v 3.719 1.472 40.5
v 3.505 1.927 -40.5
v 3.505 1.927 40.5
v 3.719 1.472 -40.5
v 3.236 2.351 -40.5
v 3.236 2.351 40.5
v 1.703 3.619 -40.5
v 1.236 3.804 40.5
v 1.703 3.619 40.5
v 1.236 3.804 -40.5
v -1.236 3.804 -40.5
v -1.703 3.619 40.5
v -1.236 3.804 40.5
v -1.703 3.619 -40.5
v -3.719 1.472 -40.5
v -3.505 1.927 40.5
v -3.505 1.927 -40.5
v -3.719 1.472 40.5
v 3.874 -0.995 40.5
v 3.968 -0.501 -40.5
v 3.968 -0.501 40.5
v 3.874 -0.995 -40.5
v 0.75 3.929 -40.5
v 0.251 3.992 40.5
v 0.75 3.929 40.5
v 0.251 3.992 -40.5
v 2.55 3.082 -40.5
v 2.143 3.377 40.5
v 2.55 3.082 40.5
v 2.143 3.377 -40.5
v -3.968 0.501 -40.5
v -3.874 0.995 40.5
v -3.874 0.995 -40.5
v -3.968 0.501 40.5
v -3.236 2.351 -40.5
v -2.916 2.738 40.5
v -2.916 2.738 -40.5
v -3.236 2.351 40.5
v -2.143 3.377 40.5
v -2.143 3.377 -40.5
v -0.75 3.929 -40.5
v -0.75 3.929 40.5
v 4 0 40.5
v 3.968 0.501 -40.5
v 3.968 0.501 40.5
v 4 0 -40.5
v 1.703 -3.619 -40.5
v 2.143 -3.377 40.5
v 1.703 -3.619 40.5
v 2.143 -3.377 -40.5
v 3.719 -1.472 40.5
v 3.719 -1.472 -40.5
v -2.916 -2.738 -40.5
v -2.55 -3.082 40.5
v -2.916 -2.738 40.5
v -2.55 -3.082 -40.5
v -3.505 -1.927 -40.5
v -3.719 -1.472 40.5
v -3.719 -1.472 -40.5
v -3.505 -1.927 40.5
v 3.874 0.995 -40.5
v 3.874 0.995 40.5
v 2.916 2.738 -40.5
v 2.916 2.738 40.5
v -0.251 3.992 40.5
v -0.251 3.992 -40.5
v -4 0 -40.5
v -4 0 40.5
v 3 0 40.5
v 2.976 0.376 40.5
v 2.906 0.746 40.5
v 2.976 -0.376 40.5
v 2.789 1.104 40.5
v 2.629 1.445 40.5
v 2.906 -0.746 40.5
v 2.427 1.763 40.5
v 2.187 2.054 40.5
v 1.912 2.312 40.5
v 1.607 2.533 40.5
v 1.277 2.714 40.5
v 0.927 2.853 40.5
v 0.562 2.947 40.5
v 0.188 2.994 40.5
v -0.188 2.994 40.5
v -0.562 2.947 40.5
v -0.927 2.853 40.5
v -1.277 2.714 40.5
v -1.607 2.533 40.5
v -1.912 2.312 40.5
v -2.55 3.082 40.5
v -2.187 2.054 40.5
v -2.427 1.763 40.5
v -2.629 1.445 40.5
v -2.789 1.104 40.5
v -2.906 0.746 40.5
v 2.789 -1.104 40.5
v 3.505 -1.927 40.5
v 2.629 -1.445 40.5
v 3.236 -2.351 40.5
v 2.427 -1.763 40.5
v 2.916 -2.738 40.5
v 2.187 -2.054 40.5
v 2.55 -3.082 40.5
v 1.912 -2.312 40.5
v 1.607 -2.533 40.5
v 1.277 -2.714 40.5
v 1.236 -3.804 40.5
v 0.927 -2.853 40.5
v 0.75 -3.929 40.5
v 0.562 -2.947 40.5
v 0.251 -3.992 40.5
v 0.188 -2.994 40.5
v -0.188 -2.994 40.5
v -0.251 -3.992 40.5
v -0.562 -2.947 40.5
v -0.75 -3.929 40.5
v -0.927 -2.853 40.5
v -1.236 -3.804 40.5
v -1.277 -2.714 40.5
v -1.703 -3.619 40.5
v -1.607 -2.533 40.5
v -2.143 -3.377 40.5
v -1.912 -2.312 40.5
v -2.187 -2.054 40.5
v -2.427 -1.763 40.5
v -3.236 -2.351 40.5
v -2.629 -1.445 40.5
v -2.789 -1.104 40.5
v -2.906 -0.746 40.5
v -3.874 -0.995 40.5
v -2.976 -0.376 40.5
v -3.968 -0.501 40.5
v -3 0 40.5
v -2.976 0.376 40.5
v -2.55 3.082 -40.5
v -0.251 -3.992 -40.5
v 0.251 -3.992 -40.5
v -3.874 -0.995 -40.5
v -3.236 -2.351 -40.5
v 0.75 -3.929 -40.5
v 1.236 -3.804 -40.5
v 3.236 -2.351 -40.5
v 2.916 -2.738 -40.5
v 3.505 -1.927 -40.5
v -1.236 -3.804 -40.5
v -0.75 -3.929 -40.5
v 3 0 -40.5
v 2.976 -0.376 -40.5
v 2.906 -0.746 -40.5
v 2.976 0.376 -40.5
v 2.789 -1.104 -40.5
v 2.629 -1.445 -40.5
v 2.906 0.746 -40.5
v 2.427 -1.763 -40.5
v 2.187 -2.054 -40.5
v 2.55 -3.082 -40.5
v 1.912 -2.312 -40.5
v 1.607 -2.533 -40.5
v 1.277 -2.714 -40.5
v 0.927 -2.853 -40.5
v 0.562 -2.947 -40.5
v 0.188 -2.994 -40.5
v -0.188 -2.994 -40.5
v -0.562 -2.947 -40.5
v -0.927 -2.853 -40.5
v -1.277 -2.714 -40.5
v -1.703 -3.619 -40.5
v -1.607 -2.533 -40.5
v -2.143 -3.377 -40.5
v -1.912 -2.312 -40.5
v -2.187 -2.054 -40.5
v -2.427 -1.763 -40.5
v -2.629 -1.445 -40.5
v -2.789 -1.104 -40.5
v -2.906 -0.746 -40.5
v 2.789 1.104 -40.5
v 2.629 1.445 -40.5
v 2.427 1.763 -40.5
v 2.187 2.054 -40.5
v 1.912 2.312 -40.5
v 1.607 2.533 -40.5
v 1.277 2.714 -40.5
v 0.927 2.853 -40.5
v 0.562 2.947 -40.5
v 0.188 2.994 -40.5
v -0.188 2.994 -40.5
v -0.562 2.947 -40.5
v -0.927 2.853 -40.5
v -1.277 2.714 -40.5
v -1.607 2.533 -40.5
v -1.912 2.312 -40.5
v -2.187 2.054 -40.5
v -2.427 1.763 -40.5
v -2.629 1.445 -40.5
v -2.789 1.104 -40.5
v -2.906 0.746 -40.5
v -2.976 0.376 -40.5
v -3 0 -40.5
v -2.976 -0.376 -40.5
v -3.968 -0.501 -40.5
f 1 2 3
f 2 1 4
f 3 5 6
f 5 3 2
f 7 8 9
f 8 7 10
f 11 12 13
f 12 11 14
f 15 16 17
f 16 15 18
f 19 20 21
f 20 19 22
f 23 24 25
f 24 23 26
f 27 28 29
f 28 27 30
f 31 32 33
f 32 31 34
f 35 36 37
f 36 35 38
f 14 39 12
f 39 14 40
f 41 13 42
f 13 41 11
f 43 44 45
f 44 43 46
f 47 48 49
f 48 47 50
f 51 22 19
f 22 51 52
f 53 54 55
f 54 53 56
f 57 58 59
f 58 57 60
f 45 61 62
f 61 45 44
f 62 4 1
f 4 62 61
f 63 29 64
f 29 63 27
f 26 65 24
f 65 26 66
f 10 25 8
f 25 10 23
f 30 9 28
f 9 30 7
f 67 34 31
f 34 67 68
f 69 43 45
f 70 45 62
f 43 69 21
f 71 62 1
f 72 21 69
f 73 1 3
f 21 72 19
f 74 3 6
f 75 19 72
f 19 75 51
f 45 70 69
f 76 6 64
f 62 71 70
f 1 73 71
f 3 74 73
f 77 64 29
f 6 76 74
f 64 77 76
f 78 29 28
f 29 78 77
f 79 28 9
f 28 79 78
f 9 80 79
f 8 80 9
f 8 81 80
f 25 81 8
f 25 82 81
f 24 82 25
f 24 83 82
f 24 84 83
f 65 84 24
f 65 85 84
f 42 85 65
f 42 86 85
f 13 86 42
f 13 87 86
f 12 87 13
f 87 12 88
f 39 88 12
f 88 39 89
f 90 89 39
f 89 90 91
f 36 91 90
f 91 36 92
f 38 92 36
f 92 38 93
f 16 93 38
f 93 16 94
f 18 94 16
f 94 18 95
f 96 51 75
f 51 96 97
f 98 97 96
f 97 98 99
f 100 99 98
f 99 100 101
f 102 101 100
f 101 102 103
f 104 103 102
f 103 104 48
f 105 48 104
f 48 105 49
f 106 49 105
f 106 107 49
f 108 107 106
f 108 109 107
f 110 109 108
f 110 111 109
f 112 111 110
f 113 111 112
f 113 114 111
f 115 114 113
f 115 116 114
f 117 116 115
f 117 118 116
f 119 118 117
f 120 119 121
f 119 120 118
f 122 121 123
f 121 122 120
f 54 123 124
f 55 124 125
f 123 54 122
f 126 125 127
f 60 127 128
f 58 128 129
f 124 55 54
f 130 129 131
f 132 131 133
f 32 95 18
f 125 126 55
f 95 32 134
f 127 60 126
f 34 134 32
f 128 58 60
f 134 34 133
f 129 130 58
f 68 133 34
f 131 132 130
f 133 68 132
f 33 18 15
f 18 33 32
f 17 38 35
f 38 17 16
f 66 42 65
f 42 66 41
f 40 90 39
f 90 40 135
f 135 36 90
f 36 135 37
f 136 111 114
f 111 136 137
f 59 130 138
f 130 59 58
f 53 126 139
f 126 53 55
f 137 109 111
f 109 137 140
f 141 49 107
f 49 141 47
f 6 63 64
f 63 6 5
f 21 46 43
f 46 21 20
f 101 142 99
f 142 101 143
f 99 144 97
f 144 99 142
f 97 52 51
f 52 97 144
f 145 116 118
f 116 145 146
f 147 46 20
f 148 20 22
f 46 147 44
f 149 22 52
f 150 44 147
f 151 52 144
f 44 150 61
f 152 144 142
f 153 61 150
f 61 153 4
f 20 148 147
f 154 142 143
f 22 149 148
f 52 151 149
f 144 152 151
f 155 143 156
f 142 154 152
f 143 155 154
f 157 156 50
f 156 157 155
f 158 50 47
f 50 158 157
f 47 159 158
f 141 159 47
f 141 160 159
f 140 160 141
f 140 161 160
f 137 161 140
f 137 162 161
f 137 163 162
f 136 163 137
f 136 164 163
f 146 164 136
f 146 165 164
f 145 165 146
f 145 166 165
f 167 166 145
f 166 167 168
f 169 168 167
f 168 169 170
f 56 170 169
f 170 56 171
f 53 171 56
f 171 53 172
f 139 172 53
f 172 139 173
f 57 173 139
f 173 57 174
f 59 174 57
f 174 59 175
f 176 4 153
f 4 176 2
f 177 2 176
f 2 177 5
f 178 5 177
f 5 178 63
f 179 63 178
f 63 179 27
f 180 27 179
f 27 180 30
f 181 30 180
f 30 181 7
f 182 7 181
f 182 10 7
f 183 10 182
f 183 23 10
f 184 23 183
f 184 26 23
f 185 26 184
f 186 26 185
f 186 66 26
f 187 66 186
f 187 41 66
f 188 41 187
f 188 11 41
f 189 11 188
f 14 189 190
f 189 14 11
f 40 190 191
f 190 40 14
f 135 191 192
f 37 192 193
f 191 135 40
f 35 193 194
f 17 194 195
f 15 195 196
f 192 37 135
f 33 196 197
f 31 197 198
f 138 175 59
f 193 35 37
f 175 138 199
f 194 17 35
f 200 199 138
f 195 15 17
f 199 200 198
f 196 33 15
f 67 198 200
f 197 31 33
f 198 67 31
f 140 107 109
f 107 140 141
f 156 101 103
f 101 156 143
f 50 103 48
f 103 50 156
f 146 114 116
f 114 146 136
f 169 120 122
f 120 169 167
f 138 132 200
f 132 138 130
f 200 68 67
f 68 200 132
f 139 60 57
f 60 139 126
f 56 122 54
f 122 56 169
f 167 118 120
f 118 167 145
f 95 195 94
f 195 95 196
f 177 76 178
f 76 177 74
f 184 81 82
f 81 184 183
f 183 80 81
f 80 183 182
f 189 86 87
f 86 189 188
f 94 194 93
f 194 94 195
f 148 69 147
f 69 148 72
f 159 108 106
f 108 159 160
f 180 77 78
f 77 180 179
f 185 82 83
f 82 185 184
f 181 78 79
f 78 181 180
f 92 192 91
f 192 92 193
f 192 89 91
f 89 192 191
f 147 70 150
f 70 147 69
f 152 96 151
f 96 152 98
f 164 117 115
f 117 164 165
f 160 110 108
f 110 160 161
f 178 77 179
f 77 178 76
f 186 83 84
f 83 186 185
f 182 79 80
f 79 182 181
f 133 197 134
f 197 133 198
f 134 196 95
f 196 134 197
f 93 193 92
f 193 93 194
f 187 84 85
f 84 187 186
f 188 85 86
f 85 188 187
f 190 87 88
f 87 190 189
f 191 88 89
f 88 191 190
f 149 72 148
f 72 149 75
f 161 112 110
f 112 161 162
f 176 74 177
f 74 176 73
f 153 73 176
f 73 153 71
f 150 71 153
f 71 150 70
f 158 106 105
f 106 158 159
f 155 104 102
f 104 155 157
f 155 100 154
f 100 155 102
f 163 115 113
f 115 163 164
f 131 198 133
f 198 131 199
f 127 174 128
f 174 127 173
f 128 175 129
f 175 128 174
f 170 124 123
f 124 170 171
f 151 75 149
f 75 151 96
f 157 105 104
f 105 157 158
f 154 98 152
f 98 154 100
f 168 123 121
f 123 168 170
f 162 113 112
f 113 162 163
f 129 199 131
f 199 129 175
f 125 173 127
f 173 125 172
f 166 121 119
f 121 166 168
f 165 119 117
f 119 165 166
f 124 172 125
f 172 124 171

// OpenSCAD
$fn = 50;


difference() {
	union() {
		translate(v = [0, 0, -40.5000000000]) {
			cylinder(h = 81, r = 4.0000000000);
		}
	}
	union() {
		translate(v = [0, 0, -100.0000000000]) {
			cylinder(h = 200, r = 3);
		}
	}
}
